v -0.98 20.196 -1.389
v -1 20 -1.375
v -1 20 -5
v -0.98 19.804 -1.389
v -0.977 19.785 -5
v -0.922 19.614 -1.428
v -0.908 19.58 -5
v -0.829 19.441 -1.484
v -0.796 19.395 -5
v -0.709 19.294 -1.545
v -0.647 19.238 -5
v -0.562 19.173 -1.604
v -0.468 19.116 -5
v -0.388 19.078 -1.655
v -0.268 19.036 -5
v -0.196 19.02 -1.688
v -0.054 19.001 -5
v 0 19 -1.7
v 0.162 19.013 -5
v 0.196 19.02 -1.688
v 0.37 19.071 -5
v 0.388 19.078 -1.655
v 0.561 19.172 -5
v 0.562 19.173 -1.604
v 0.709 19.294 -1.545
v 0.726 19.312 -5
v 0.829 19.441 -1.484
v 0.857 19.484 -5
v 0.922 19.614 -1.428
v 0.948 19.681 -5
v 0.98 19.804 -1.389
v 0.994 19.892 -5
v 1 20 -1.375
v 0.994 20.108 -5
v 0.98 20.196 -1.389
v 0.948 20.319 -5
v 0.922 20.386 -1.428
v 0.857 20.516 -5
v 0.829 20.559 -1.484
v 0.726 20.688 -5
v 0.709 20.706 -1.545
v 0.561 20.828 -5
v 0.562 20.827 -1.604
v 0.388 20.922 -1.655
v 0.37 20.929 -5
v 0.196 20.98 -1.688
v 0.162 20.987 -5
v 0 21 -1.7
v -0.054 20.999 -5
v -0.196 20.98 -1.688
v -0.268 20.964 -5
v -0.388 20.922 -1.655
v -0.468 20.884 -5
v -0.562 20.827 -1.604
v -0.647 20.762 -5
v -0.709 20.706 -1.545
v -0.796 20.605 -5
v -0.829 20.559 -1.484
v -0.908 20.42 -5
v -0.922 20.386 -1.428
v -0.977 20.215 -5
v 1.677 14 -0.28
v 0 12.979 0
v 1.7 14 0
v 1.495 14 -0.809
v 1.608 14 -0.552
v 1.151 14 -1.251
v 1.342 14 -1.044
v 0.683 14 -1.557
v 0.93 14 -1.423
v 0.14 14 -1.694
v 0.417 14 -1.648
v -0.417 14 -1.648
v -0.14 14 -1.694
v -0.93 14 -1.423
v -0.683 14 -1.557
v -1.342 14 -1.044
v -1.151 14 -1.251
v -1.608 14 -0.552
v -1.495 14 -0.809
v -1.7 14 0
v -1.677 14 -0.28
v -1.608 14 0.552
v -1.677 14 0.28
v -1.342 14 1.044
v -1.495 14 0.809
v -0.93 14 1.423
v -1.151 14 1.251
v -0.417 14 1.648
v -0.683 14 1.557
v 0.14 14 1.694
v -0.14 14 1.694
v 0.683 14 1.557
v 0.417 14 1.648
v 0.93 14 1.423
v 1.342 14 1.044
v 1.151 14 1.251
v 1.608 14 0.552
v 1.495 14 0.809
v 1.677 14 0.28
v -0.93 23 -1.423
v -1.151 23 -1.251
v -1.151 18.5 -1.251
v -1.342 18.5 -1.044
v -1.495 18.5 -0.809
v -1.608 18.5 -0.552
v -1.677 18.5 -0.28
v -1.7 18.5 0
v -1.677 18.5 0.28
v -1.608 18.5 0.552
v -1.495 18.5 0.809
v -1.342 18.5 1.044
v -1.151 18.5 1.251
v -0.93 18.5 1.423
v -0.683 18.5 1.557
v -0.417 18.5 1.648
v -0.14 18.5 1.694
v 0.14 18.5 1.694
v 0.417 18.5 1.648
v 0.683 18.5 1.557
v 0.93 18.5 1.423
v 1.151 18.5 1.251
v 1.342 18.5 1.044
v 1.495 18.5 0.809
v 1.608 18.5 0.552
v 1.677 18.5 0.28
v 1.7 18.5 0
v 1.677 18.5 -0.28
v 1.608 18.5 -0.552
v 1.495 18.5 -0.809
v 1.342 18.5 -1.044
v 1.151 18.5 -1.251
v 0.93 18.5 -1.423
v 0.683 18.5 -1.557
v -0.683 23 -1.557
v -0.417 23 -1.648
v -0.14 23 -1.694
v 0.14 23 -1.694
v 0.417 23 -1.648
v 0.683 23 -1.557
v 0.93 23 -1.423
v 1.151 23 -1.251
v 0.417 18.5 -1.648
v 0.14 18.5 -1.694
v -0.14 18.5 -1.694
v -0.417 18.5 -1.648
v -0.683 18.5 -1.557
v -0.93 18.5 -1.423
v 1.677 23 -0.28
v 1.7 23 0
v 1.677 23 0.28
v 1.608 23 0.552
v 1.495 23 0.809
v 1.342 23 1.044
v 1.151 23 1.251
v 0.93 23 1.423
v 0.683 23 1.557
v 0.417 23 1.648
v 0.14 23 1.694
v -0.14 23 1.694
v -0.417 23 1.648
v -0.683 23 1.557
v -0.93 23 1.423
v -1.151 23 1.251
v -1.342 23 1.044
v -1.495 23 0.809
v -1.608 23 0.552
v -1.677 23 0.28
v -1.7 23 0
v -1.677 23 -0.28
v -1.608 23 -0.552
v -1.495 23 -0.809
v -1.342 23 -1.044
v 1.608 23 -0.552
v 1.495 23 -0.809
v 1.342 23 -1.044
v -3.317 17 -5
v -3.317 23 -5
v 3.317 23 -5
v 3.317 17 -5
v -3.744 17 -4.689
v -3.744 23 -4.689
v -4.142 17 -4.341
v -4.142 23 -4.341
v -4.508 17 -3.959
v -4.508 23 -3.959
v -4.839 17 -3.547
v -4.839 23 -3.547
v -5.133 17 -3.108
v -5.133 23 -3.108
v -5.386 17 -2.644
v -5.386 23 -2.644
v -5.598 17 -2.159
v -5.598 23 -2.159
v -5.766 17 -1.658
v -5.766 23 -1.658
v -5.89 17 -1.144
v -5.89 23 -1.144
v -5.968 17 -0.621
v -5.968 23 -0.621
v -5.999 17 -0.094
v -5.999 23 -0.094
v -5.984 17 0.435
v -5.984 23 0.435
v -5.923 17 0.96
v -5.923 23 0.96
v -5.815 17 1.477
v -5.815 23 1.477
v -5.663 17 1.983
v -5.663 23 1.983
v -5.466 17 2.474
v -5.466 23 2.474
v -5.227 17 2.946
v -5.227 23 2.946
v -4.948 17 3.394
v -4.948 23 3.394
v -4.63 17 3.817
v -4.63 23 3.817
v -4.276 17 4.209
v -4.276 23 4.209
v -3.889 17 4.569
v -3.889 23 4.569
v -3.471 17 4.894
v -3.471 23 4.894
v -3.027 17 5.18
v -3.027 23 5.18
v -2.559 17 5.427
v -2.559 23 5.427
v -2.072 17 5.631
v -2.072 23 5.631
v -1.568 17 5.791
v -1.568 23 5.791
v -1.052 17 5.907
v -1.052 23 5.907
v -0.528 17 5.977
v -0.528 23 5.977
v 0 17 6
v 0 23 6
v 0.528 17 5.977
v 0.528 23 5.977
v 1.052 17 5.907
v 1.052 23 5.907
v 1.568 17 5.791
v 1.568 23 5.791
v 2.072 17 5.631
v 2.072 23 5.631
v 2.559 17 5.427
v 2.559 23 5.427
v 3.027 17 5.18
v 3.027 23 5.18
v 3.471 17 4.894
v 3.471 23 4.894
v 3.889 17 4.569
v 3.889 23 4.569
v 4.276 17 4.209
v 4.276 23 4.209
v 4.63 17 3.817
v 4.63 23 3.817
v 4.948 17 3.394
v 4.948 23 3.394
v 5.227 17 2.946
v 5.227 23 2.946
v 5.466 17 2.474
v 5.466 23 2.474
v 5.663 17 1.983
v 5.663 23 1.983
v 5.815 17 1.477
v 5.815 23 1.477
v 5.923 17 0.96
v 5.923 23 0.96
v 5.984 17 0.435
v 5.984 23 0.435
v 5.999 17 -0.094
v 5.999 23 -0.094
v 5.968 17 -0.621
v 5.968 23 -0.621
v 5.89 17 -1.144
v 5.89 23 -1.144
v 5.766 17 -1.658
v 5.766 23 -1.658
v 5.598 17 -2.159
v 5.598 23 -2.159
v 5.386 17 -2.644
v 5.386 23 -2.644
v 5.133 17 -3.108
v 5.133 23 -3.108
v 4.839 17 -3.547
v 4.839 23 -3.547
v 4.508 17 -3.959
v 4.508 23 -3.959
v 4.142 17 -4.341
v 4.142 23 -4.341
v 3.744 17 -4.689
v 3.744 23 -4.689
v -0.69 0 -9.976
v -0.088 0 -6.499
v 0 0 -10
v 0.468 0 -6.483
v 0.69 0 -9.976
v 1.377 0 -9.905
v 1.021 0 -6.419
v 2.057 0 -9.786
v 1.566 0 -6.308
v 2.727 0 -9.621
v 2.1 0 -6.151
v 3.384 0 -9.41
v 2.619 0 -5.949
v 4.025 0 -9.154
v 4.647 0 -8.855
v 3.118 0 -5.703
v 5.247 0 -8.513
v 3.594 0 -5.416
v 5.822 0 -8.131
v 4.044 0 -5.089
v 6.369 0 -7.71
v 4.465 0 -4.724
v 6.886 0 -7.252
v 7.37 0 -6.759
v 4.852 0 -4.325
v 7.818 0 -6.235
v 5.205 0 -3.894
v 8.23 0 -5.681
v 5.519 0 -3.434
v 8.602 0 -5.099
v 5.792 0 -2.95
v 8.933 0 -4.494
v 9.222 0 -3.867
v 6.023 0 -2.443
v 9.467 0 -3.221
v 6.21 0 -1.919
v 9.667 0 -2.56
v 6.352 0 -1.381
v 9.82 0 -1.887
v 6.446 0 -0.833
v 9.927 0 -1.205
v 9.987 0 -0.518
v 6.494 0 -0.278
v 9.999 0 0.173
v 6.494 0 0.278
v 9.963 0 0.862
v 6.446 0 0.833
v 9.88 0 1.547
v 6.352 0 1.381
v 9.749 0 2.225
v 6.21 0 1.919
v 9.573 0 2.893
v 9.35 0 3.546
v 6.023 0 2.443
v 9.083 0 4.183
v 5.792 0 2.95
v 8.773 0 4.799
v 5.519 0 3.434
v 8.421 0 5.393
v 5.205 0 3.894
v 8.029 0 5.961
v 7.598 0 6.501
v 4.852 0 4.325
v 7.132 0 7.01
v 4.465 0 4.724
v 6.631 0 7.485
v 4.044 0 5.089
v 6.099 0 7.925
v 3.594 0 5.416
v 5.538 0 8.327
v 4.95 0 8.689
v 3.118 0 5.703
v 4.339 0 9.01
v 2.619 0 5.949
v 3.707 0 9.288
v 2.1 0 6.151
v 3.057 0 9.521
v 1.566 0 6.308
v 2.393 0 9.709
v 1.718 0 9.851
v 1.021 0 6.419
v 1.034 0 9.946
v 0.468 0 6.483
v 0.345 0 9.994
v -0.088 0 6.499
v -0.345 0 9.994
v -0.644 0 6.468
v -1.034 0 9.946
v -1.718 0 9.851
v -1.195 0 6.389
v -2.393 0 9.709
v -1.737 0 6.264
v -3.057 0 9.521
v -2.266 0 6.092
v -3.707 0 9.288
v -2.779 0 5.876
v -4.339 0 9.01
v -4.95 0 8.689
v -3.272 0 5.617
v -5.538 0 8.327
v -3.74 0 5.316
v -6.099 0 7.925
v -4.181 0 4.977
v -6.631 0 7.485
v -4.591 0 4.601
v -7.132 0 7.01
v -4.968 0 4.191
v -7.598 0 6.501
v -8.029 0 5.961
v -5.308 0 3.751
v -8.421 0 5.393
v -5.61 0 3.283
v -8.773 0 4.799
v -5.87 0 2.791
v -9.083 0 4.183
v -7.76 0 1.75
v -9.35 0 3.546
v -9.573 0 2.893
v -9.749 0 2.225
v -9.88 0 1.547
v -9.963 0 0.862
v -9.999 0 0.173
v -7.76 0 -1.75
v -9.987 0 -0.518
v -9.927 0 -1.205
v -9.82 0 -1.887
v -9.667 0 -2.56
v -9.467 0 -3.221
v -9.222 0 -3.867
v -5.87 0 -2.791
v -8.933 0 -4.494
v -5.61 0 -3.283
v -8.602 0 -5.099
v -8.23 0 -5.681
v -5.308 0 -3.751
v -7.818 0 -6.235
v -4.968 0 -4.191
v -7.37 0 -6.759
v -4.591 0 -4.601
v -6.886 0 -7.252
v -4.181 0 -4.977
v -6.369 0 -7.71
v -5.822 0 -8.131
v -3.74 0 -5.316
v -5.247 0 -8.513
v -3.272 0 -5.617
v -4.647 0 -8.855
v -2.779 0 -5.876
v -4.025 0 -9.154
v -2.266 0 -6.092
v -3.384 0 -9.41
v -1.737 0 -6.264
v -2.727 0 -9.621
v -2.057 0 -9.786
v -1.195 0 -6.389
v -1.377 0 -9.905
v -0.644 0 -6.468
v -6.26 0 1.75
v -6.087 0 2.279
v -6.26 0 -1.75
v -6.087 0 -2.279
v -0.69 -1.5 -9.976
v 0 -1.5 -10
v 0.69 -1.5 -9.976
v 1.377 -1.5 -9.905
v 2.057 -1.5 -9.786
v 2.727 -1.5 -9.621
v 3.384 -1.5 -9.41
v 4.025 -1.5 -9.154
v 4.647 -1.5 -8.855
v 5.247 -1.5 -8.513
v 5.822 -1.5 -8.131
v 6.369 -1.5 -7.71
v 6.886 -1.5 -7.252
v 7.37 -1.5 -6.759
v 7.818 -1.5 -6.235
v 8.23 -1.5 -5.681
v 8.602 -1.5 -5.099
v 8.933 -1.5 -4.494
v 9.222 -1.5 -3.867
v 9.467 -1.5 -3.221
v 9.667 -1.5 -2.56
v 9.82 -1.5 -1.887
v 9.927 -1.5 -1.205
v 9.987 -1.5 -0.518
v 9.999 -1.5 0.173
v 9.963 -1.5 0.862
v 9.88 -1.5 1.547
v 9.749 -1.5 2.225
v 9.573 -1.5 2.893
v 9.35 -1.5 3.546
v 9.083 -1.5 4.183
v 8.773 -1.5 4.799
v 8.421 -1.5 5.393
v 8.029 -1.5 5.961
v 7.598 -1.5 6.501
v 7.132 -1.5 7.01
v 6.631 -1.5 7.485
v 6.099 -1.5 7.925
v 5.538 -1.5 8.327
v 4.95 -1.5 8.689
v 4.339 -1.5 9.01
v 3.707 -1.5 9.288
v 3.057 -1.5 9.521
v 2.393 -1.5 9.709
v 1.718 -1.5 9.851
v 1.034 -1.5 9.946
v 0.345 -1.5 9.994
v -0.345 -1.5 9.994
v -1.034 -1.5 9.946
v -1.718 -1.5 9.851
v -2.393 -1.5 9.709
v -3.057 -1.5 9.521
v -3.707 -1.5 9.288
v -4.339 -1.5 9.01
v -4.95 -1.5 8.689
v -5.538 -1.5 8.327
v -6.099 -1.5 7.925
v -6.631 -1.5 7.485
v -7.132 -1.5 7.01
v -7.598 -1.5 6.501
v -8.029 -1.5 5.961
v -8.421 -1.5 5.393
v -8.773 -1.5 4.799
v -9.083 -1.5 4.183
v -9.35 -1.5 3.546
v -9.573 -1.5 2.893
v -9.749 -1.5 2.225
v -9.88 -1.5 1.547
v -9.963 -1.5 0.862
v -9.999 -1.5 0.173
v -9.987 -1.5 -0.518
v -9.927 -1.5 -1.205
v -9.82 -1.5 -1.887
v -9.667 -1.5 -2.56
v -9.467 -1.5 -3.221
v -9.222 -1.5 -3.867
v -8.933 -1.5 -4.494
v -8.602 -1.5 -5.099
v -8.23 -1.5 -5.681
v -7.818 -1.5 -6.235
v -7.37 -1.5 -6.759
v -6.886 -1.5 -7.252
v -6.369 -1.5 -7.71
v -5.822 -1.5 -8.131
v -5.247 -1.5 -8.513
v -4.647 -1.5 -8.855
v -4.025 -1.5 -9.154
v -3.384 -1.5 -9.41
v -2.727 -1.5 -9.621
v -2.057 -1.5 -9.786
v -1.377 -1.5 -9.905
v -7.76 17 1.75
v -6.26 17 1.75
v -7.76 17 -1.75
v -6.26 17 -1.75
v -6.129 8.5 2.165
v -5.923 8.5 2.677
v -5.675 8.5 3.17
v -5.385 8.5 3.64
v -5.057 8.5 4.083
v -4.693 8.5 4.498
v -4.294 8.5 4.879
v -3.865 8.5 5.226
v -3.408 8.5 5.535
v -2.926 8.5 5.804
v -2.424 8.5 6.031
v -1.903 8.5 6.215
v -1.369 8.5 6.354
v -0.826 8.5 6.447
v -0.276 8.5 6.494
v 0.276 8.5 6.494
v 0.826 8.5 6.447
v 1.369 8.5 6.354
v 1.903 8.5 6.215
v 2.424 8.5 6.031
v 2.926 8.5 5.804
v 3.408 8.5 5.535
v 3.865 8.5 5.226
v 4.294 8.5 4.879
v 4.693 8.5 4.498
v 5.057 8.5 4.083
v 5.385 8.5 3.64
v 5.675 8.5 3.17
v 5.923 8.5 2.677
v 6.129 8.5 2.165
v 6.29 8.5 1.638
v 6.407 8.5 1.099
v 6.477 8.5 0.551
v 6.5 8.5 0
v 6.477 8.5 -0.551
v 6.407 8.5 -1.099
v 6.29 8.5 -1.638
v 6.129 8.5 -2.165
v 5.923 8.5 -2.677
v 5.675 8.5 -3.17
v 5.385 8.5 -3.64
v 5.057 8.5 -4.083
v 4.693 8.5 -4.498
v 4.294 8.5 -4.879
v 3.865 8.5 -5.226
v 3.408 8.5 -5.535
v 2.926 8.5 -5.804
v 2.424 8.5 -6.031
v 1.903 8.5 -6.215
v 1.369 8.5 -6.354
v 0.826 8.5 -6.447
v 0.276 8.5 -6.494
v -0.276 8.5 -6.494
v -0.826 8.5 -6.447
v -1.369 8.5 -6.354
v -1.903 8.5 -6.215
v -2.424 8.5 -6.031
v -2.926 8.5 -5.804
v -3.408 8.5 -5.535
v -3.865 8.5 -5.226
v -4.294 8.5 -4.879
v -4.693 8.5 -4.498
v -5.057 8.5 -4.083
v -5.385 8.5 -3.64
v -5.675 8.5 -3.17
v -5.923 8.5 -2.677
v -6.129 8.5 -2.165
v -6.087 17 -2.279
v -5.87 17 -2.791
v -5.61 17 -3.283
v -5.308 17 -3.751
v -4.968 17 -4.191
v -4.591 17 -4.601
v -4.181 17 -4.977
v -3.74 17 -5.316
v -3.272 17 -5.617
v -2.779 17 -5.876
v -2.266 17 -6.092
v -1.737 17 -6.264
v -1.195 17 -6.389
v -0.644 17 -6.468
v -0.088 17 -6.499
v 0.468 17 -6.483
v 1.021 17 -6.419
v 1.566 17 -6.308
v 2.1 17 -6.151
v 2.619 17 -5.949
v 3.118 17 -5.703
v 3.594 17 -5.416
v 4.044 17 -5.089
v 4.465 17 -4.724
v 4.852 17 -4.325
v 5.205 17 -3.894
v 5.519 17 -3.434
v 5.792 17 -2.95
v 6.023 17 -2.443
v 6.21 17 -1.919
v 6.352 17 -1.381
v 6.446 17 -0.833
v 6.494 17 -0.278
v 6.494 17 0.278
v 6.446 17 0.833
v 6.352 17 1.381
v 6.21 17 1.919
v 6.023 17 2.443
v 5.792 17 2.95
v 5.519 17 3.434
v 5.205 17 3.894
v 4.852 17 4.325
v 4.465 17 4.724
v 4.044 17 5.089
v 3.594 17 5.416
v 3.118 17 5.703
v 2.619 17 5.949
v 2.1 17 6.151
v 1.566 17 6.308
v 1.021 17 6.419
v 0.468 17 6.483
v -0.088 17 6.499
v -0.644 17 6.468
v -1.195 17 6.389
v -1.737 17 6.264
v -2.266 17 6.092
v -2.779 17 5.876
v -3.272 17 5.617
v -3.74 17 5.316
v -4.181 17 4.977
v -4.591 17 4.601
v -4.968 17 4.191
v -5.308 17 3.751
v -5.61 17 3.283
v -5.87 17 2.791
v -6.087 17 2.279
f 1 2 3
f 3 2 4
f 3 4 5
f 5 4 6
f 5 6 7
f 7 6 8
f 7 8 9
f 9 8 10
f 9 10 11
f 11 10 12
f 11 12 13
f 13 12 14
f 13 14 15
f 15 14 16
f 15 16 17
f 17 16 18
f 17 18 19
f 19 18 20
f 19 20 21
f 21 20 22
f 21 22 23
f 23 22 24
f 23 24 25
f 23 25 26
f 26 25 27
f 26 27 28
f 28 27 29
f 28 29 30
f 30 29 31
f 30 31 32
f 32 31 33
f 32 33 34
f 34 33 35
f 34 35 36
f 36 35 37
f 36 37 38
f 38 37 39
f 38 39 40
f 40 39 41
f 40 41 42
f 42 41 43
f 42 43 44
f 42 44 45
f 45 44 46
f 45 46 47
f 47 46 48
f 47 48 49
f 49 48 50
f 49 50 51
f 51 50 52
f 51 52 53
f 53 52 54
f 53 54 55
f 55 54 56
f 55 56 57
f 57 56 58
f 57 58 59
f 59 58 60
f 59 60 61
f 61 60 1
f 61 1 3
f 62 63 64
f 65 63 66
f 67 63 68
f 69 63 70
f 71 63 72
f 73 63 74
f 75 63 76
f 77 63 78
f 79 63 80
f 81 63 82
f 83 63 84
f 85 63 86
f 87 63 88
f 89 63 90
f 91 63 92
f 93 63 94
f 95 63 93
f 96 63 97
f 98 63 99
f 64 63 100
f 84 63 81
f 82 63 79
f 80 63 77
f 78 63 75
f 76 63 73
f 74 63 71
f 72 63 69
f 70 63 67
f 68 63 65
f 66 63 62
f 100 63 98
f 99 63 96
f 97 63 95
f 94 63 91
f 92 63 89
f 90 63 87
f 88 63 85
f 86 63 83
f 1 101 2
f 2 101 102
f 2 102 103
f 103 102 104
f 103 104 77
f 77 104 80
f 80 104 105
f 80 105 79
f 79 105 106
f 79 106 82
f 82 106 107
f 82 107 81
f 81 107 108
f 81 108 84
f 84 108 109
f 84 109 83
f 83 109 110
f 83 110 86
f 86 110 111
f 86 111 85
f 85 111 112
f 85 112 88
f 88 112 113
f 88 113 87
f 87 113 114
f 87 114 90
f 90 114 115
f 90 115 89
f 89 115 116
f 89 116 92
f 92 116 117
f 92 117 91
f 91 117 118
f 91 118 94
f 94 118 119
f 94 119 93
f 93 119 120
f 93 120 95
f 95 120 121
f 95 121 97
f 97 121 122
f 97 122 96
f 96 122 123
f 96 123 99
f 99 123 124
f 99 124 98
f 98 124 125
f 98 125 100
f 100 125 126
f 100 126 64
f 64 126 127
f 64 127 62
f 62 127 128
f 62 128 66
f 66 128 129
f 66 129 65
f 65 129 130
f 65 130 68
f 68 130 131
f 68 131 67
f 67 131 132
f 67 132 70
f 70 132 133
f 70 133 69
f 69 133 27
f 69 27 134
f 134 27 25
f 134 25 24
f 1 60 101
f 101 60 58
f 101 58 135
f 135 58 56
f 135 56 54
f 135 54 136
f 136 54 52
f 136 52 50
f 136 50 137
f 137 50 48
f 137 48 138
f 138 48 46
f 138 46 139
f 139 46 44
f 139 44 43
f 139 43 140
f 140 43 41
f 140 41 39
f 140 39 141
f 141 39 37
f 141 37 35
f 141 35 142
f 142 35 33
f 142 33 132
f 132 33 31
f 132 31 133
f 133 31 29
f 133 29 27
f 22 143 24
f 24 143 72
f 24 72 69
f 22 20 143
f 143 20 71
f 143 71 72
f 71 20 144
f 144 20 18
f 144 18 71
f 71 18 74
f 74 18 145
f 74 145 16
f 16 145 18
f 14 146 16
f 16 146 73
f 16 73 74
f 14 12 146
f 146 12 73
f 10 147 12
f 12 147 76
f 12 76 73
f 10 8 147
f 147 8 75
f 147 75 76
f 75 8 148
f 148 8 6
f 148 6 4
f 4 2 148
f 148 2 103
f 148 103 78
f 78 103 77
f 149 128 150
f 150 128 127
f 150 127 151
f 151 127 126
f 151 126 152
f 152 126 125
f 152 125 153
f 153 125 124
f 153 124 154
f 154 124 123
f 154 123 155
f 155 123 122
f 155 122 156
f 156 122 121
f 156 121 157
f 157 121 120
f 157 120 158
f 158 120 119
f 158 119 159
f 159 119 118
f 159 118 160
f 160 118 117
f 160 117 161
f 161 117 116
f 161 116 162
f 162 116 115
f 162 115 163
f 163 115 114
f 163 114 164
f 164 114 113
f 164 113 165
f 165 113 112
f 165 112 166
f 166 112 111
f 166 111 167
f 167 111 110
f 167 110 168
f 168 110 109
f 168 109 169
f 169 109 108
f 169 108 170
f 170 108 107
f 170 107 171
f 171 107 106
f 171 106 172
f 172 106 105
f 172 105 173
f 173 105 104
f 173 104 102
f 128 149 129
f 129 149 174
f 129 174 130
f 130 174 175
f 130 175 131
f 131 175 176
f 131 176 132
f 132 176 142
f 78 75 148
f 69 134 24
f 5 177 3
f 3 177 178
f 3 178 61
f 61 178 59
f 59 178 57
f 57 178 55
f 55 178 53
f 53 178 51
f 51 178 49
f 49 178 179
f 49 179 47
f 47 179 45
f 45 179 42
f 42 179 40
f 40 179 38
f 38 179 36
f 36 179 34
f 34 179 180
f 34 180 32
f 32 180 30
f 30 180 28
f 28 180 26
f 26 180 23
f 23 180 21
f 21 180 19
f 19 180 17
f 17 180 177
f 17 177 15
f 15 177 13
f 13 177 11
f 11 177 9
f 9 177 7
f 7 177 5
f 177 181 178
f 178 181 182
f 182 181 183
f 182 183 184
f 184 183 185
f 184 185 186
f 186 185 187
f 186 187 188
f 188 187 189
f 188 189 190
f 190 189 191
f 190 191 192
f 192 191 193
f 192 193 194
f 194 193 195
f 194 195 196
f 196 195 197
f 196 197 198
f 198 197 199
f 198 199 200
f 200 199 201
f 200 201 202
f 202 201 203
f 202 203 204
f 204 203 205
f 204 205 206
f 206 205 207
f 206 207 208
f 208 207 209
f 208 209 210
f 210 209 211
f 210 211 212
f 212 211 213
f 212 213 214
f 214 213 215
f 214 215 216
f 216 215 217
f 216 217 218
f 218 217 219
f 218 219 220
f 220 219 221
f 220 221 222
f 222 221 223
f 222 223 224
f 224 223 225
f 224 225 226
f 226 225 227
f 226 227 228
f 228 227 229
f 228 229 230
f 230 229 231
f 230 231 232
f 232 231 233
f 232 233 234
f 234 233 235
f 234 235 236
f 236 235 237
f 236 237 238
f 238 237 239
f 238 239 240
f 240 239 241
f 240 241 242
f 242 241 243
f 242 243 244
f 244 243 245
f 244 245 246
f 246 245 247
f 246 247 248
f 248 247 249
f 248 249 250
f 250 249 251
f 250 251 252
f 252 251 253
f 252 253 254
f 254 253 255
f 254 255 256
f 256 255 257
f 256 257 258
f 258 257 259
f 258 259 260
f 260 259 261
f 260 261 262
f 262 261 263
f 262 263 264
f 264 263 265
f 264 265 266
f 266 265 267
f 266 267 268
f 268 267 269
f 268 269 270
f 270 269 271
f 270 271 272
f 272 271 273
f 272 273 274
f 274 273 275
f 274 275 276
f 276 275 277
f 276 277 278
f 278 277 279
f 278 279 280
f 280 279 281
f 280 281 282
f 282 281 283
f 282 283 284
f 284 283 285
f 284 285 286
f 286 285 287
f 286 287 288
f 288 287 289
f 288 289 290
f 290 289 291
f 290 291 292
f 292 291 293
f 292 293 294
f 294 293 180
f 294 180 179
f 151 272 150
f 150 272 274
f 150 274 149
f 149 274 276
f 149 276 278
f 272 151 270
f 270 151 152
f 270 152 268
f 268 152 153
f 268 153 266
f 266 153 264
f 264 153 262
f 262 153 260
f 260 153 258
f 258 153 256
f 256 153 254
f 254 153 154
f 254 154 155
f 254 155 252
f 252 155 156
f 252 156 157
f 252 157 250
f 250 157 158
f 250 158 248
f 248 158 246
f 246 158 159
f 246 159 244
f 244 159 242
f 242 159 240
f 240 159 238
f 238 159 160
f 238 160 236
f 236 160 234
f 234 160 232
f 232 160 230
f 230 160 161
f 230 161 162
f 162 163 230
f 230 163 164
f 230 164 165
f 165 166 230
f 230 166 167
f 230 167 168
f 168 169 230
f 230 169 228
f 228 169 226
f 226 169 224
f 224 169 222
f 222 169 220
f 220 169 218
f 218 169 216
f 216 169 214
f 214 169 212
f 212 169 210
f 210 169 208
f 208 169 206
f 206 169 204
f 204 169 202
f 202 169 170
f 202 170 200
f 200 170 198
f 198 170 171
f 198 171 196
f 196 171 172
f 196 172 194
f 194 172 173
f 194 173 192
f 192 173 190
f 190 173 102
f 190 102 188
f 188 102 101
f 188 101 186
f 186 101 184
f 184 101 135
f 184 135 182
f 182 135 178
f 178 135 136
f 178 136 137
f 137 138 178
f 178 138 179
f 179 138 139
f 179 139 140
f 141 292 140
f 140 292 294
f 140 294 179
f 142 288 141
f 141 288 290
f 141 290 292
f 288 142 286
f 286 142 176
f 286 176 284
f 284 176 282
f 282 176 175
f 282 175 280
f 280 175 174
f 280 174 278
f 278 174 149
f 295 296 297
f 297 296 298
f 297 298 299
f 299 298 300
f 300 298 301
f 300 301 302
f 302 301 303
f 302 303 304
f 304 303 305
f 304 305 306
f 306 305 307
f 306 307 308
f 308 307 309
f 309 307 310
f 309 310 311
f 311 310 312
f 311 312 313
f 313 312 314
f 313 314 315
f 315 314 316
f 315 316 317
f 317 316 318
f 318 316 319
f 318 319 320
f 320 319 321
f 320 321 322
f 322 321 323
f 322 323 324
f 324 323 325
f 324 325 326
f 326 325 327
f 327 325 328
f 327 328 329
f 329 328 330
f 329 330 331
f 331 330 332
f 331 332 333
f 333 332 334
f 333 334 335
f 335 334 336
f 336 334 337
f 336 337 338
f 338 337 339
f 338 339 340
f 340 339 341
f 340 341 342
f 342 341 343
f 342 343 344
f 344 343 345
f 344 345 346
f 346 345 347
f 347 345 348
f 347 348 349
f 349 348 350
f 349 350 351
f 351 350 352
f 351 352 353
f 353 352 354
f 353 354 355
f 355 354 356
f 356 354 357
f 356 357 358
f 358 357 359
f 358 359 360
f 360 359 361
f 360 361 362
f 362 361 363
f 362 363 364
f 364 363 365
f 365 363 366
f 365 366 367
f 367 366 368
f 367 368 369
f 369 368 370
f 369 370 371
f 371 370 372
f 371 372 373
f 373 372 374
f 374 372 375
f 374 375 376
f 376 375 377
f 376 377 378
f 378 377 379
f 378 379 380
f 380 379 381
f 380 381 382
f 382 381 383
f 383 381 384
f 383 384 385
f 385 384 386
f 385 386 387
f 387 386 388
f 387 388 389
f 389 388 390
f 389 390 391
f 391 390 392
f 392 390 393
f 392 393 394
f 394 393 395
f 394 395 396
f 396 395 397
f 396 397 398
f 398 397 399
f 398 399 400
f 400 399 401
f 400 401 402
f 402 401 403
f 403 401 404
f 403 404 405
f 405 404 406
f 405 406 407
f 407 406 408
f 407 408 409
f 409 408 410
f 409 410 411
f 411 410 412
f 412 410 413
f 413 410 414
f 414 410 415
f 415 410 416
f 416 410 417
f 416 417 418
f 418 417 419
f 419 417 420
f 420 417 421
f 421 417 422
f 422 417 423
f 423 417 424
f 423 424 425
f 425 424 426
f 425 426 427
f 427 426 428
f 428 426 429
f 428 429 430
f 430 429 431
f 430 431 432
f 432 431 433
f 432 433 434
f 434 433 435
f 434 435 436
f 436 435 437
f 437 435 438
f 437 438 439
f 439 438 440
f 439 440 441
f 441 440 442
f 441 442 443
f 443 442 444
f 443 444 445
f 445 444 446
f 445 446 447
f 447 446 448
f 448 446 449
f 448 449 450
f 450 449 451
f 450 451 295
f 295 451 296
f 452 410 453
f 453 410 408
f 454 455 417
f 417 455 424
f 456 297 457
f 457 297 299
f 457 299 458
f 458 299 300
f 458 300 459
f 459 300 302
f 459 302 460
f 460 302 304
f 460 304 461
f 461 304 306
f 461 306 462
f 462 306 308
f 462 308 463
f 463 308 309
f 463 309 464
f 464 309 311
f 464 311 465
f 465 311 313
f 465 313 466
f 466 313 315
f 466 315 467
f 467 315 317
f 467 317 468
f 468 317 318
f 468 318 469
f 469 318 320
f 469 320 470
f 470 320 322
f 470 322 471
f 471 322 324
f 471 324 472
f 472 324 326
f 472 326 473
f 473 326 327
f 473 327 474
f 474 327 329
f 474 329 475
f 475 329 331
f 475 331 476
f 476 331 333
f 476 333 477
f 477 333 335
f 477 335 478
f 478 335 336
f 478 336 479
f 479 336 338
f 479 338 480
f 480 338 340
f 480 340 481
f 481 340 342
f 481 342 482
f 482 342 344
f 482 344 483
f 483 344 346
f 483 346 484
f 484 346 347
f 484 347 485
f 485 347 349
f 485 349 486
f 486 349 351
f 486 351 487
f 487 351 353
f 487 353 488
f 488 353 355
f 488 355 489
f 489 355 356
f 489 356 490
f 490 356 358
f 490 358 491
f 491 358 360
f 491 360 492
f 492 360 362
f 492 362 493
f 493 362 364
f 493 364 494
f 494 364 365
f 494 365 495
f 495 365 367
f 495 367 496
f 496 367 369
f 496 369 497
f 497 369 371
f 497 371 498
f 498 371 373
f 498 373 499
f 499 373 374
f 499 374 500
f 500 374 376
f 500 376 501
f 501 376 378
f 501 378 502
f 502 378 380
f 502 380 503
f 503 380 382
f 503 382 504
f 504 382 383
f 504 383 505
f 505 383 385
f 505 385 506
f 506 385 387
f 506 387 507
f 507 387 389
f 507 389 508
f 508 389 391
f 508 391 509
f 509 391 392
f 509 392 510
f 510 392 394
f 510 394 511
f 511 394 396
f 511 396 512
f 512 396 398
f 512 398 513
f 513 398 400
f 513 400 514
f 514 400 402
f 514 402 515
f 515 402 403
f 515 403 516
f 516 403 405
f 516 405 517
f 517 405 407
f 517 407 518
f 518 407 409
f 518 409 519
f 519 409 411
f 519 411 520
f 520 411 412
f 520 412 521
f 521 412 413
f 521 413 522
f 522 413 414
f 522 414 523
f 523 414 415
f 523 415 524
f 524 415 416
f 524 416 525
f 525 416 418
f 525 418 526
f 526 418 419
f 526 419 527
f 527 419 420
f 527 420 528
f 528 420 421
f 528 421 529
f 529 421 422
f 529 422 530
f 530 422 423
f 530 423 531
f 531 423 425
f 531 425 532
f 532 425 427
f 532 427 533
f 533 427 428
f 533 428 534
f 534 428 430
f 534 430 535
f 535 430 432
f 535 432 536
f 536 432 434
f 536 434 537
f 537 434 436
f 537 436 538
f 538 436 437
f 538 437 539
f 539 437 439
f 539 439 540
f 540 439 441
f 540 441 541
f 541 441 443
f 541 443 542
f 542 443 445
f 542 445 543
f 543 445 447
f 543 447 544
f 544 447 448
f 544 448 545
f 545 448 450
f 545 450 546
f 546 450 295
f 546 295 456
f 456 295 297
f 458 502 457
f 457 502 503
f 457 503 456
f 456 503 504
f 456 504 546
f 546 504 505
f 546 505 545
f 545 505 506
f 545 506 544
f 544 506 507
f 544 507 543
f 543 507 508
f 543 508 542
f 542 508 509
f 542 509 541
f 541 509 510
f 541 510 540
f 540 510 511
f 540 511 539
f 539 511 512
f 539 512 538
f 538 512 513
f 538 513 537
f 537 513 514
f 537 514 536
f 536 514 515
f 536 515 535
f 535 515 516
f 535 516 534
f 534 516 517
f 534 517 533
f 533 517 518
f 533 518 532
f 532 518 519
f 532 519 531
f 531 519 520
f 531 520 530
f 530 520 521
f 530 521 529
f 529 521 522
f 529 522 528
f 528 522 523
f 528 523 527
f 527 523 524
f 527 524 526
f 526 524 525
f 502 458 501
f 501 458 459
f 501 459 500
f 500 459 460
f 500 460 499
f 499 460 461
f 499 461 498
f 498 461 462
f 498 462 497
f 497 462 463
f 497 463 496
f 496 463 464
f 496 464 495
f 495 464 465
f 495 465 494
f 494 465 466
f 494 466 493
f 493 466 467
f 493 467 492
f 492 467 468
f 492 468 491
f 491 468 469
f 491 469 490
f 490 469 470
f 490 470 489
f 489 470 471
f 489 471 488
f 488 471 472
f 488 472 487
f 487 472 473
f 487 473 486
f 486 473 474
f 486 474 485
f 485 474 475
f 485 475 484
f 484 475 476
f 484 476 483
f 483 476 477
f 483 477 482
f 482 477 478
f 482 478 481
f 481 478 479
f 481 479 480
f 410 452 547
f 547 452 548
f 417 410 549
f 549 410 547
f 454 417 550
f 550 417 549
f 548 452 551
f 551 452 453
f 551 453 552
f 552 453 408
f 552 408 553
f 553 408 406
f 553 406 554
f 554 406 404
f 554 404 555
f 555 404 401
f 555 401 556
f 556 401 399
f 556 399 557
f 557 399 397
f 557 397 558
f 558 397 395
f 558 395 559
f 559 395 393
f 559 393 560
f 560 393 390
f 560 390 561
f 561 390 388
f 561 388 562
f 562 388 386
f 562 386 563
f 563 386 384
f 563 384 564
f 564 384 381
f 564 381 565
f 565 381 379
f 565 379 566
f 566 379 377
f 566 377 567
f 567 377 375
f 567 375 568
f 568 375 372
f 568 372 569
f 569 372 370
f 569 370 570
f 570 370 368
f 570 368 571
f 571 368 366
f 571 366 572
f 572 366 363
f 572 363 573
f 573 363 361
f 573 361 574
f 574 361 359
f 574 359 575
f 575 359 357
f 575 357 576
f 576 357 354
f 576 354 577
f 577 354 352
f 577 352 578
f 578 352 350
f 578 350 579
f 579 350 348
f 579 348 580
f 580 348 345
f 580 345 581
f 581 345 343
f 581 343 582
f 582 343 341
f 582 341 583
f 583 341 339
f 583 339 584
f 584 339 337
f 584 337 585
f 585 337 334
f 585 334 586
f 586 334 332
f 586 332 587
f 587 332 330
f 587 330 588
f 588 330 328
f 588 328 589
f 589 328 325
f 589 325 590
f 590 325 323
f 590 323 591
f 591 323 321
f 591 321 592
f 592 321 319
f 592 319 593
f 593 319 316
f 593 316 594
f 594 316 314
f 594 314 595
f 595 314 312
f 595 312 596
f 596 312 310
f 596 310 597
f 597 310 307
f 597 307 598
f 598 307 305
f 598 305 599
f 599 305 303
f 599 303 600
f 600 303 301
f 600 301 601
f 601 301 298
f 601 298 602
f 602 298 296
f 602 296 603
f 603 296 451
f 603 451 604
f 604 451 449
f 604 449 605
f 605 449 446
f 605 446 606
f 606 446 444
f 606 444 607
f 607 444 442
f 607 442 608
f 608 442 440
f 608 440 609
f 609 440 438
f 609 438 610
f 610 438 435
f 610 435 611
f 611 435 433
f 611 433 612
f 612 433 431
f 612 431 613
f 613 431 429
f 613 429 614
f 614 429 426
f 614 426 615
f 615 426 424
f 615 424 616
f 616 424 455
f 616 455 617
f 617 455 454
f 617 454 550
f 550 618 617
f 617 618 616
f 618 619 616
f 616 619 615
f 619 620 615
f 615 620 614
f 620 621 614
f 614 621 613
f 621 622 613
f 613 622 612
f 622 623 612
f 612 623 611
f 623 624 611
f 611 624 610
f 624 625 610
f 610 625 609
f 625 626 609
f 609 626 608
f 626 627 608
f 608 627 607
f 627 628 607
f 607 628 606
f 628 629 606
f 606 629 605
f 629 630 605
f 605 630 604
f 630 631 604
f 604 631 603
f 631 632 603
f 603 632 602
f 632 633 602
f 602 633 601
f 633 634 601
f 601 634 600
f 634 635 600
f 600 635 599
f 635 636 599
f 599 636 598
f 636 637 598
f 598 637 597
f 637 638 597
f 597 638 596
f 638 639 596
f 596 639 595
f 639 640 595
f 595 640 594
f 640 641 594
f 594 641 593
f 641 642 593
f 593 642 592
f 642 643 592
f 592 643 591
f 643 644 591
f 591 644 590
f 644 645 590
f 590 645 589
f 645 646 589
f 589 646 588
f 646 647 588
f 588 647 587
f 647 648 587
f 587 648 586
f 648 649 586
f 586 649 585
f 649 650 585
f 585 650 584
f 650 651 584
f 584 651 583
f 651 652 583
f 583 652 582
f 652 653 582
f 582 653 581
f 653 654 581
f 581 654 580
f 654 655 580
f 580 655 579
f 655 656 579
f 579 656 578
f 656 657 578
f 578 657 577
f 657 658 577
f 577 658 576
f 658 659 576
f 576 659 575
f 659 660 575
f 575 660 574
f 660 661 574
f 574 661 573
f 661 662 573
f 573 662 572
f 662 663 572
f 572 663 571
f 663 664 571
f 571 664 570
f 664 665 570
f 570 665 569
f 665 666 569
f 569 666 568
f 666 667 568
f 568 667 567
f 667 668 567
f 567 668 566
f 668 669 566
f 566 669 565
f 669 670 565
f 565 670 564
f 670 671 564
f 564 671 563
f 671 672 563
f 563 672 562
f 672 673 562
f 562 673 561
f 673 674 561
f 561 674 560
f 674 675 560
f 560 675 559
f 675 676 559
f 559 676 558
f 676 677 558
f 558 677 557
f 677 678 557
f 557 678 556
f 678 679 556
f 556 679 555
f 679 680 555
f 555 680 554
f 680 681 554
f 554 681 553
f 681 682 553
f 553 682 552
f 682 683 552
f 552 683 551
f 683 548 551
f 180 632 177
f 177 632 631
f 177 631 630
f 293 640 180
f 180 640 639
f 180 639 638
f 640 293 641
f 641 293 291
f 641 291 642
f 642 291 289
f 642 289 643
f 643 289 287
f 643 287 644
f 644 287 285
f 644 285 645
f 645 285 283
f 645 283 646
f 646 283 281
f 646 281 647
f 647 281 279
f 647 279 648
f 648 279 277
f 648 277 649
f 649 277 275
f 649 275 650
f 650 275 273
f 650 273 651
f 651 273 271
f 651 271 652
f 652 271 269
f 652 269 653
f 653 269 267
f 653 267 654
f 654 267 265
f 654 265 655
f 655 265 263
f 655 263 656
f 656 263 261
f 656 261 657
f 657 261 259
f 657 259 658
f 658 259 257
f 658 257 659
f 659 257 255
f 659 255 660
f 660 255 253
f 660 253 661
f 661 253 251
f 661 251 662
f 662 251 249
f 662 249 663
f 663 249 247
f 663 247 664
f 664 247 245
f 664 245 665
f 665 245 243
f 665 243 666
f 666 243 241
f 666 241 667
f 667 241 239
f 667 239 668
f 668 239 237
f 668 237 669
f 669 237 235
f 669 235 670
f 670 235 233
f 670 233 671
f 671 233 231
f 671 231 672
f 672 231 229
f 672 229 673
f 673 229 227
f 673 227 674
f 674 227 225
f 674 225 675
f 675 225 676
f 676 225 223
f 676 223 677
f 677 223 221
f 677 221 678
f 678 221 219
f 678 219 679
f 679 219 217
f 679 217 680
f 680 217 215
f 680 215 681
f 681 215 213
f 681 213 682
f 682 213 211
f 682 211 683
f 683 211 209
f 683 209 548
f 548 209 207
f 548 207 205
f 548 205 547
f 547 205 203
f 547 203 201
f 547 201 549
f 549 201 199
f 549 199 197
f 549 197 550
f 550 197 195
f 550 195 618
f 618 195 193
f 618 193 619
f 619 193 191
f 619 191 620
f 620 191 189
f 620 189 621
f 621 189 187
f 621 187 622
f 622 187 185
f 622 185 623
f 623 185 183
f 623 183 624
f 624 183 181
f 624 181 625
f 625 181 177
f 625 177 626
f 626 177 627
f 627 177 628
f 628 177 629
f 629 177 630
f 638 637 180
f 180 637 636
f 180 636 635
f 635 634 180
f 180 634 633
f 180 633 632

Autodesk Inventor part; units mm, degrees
ref_plane "YZ Plane" through (0, 0, 0) normal (1, 0, 0) x (0, 1, 0)
ref_plane "XZ Plane" through (0, 0, 0) normal (0, 1, 0) x (-1, 0, 0)
ref_plane "XY Plane" through (0, 0, 0) normal (0, 0, 1) x (1, 0, 0)
sketch "Sketch1" plane through (0, 0, 0) normal (0, 1, 0) x (-1, 0, 0)
  circle A0 centre (0, 0) radius 6.5
  line L0 (7.76, 1.75) -> (6.26, 1.75)
  line L1 (6.26, 1.75) -> (6.26, -1.75)
  line L2 (6.26, -1.75) -> (7.76, -1.75)
  line L3 (7.76, -1.75) -> (7.76, 1.75)
  dimension "d0" = 13
  dimension "d8" = 1.5
  dimension "d9" = 3.5
extrude "Extrusion1" add sketch "Sketch1" along normal blind 17
sketch "Sketch2" plane through (0, 0, 0) normal (0, -1, 0) x (0, 0, -1)
  circle A0 centre (0, 0) radius 10
  dimension "d3" = 20
extrude "Extrusion2" add sketch "Sketch2" along normal blind 1.5
sketch "Sketch4" plane through (0, 17, 0) normal (0, 1, 0) x (1, 0, 0)
  circle A0 centre (0, 0) radius 6
  arc A1 (-6.26, -1.75) -> (-6.26, 1.75) centre (0, 0) ccw projected
  line L0 (4.1533, 5) -> (-4.1533, 5)
  point P0 (3.3166, 5)
  point P1 (-3.3166, 5)
  dimension "d10" = 12
  dimension "d27" = 5
extrude "Extrusion3" add sketch "Sketch4" along normal blind 6 contours A0 L0 picked at (-0.7721, -1.8319)
sketch "Sketch5" plane through (0, 23, 0) normal (0, 1, 0) x (1, 0, 0)
  point P0 (0, 0)
  point P1 (0, 0)
hole "Hole1" at (0, 23, 0) direction (0, -1, 0) diameter 3.4 depth 9 tip angle 118 clearance for "Hex Head Cap Screw ISO 24017" size "M3" standard "ISO"
sketch "Sketch6" plane through (0, 0, 0) normal (0, 0, 1) x (1, 0, 0)
  circle A0 centre (0, 20) radius 1
  line L0 (6, 23) -> (-6, 23) projected
  line L1 (0, -4.6) -> (0, 27.6) projected
  point P0 (0, 0)
  dimension "d21" = 2
  dimension "d26" = 3
extrude "Extrusion4" cut sketch "Sketch6" against normal up to surface
properties part number "wheel_adapt"
